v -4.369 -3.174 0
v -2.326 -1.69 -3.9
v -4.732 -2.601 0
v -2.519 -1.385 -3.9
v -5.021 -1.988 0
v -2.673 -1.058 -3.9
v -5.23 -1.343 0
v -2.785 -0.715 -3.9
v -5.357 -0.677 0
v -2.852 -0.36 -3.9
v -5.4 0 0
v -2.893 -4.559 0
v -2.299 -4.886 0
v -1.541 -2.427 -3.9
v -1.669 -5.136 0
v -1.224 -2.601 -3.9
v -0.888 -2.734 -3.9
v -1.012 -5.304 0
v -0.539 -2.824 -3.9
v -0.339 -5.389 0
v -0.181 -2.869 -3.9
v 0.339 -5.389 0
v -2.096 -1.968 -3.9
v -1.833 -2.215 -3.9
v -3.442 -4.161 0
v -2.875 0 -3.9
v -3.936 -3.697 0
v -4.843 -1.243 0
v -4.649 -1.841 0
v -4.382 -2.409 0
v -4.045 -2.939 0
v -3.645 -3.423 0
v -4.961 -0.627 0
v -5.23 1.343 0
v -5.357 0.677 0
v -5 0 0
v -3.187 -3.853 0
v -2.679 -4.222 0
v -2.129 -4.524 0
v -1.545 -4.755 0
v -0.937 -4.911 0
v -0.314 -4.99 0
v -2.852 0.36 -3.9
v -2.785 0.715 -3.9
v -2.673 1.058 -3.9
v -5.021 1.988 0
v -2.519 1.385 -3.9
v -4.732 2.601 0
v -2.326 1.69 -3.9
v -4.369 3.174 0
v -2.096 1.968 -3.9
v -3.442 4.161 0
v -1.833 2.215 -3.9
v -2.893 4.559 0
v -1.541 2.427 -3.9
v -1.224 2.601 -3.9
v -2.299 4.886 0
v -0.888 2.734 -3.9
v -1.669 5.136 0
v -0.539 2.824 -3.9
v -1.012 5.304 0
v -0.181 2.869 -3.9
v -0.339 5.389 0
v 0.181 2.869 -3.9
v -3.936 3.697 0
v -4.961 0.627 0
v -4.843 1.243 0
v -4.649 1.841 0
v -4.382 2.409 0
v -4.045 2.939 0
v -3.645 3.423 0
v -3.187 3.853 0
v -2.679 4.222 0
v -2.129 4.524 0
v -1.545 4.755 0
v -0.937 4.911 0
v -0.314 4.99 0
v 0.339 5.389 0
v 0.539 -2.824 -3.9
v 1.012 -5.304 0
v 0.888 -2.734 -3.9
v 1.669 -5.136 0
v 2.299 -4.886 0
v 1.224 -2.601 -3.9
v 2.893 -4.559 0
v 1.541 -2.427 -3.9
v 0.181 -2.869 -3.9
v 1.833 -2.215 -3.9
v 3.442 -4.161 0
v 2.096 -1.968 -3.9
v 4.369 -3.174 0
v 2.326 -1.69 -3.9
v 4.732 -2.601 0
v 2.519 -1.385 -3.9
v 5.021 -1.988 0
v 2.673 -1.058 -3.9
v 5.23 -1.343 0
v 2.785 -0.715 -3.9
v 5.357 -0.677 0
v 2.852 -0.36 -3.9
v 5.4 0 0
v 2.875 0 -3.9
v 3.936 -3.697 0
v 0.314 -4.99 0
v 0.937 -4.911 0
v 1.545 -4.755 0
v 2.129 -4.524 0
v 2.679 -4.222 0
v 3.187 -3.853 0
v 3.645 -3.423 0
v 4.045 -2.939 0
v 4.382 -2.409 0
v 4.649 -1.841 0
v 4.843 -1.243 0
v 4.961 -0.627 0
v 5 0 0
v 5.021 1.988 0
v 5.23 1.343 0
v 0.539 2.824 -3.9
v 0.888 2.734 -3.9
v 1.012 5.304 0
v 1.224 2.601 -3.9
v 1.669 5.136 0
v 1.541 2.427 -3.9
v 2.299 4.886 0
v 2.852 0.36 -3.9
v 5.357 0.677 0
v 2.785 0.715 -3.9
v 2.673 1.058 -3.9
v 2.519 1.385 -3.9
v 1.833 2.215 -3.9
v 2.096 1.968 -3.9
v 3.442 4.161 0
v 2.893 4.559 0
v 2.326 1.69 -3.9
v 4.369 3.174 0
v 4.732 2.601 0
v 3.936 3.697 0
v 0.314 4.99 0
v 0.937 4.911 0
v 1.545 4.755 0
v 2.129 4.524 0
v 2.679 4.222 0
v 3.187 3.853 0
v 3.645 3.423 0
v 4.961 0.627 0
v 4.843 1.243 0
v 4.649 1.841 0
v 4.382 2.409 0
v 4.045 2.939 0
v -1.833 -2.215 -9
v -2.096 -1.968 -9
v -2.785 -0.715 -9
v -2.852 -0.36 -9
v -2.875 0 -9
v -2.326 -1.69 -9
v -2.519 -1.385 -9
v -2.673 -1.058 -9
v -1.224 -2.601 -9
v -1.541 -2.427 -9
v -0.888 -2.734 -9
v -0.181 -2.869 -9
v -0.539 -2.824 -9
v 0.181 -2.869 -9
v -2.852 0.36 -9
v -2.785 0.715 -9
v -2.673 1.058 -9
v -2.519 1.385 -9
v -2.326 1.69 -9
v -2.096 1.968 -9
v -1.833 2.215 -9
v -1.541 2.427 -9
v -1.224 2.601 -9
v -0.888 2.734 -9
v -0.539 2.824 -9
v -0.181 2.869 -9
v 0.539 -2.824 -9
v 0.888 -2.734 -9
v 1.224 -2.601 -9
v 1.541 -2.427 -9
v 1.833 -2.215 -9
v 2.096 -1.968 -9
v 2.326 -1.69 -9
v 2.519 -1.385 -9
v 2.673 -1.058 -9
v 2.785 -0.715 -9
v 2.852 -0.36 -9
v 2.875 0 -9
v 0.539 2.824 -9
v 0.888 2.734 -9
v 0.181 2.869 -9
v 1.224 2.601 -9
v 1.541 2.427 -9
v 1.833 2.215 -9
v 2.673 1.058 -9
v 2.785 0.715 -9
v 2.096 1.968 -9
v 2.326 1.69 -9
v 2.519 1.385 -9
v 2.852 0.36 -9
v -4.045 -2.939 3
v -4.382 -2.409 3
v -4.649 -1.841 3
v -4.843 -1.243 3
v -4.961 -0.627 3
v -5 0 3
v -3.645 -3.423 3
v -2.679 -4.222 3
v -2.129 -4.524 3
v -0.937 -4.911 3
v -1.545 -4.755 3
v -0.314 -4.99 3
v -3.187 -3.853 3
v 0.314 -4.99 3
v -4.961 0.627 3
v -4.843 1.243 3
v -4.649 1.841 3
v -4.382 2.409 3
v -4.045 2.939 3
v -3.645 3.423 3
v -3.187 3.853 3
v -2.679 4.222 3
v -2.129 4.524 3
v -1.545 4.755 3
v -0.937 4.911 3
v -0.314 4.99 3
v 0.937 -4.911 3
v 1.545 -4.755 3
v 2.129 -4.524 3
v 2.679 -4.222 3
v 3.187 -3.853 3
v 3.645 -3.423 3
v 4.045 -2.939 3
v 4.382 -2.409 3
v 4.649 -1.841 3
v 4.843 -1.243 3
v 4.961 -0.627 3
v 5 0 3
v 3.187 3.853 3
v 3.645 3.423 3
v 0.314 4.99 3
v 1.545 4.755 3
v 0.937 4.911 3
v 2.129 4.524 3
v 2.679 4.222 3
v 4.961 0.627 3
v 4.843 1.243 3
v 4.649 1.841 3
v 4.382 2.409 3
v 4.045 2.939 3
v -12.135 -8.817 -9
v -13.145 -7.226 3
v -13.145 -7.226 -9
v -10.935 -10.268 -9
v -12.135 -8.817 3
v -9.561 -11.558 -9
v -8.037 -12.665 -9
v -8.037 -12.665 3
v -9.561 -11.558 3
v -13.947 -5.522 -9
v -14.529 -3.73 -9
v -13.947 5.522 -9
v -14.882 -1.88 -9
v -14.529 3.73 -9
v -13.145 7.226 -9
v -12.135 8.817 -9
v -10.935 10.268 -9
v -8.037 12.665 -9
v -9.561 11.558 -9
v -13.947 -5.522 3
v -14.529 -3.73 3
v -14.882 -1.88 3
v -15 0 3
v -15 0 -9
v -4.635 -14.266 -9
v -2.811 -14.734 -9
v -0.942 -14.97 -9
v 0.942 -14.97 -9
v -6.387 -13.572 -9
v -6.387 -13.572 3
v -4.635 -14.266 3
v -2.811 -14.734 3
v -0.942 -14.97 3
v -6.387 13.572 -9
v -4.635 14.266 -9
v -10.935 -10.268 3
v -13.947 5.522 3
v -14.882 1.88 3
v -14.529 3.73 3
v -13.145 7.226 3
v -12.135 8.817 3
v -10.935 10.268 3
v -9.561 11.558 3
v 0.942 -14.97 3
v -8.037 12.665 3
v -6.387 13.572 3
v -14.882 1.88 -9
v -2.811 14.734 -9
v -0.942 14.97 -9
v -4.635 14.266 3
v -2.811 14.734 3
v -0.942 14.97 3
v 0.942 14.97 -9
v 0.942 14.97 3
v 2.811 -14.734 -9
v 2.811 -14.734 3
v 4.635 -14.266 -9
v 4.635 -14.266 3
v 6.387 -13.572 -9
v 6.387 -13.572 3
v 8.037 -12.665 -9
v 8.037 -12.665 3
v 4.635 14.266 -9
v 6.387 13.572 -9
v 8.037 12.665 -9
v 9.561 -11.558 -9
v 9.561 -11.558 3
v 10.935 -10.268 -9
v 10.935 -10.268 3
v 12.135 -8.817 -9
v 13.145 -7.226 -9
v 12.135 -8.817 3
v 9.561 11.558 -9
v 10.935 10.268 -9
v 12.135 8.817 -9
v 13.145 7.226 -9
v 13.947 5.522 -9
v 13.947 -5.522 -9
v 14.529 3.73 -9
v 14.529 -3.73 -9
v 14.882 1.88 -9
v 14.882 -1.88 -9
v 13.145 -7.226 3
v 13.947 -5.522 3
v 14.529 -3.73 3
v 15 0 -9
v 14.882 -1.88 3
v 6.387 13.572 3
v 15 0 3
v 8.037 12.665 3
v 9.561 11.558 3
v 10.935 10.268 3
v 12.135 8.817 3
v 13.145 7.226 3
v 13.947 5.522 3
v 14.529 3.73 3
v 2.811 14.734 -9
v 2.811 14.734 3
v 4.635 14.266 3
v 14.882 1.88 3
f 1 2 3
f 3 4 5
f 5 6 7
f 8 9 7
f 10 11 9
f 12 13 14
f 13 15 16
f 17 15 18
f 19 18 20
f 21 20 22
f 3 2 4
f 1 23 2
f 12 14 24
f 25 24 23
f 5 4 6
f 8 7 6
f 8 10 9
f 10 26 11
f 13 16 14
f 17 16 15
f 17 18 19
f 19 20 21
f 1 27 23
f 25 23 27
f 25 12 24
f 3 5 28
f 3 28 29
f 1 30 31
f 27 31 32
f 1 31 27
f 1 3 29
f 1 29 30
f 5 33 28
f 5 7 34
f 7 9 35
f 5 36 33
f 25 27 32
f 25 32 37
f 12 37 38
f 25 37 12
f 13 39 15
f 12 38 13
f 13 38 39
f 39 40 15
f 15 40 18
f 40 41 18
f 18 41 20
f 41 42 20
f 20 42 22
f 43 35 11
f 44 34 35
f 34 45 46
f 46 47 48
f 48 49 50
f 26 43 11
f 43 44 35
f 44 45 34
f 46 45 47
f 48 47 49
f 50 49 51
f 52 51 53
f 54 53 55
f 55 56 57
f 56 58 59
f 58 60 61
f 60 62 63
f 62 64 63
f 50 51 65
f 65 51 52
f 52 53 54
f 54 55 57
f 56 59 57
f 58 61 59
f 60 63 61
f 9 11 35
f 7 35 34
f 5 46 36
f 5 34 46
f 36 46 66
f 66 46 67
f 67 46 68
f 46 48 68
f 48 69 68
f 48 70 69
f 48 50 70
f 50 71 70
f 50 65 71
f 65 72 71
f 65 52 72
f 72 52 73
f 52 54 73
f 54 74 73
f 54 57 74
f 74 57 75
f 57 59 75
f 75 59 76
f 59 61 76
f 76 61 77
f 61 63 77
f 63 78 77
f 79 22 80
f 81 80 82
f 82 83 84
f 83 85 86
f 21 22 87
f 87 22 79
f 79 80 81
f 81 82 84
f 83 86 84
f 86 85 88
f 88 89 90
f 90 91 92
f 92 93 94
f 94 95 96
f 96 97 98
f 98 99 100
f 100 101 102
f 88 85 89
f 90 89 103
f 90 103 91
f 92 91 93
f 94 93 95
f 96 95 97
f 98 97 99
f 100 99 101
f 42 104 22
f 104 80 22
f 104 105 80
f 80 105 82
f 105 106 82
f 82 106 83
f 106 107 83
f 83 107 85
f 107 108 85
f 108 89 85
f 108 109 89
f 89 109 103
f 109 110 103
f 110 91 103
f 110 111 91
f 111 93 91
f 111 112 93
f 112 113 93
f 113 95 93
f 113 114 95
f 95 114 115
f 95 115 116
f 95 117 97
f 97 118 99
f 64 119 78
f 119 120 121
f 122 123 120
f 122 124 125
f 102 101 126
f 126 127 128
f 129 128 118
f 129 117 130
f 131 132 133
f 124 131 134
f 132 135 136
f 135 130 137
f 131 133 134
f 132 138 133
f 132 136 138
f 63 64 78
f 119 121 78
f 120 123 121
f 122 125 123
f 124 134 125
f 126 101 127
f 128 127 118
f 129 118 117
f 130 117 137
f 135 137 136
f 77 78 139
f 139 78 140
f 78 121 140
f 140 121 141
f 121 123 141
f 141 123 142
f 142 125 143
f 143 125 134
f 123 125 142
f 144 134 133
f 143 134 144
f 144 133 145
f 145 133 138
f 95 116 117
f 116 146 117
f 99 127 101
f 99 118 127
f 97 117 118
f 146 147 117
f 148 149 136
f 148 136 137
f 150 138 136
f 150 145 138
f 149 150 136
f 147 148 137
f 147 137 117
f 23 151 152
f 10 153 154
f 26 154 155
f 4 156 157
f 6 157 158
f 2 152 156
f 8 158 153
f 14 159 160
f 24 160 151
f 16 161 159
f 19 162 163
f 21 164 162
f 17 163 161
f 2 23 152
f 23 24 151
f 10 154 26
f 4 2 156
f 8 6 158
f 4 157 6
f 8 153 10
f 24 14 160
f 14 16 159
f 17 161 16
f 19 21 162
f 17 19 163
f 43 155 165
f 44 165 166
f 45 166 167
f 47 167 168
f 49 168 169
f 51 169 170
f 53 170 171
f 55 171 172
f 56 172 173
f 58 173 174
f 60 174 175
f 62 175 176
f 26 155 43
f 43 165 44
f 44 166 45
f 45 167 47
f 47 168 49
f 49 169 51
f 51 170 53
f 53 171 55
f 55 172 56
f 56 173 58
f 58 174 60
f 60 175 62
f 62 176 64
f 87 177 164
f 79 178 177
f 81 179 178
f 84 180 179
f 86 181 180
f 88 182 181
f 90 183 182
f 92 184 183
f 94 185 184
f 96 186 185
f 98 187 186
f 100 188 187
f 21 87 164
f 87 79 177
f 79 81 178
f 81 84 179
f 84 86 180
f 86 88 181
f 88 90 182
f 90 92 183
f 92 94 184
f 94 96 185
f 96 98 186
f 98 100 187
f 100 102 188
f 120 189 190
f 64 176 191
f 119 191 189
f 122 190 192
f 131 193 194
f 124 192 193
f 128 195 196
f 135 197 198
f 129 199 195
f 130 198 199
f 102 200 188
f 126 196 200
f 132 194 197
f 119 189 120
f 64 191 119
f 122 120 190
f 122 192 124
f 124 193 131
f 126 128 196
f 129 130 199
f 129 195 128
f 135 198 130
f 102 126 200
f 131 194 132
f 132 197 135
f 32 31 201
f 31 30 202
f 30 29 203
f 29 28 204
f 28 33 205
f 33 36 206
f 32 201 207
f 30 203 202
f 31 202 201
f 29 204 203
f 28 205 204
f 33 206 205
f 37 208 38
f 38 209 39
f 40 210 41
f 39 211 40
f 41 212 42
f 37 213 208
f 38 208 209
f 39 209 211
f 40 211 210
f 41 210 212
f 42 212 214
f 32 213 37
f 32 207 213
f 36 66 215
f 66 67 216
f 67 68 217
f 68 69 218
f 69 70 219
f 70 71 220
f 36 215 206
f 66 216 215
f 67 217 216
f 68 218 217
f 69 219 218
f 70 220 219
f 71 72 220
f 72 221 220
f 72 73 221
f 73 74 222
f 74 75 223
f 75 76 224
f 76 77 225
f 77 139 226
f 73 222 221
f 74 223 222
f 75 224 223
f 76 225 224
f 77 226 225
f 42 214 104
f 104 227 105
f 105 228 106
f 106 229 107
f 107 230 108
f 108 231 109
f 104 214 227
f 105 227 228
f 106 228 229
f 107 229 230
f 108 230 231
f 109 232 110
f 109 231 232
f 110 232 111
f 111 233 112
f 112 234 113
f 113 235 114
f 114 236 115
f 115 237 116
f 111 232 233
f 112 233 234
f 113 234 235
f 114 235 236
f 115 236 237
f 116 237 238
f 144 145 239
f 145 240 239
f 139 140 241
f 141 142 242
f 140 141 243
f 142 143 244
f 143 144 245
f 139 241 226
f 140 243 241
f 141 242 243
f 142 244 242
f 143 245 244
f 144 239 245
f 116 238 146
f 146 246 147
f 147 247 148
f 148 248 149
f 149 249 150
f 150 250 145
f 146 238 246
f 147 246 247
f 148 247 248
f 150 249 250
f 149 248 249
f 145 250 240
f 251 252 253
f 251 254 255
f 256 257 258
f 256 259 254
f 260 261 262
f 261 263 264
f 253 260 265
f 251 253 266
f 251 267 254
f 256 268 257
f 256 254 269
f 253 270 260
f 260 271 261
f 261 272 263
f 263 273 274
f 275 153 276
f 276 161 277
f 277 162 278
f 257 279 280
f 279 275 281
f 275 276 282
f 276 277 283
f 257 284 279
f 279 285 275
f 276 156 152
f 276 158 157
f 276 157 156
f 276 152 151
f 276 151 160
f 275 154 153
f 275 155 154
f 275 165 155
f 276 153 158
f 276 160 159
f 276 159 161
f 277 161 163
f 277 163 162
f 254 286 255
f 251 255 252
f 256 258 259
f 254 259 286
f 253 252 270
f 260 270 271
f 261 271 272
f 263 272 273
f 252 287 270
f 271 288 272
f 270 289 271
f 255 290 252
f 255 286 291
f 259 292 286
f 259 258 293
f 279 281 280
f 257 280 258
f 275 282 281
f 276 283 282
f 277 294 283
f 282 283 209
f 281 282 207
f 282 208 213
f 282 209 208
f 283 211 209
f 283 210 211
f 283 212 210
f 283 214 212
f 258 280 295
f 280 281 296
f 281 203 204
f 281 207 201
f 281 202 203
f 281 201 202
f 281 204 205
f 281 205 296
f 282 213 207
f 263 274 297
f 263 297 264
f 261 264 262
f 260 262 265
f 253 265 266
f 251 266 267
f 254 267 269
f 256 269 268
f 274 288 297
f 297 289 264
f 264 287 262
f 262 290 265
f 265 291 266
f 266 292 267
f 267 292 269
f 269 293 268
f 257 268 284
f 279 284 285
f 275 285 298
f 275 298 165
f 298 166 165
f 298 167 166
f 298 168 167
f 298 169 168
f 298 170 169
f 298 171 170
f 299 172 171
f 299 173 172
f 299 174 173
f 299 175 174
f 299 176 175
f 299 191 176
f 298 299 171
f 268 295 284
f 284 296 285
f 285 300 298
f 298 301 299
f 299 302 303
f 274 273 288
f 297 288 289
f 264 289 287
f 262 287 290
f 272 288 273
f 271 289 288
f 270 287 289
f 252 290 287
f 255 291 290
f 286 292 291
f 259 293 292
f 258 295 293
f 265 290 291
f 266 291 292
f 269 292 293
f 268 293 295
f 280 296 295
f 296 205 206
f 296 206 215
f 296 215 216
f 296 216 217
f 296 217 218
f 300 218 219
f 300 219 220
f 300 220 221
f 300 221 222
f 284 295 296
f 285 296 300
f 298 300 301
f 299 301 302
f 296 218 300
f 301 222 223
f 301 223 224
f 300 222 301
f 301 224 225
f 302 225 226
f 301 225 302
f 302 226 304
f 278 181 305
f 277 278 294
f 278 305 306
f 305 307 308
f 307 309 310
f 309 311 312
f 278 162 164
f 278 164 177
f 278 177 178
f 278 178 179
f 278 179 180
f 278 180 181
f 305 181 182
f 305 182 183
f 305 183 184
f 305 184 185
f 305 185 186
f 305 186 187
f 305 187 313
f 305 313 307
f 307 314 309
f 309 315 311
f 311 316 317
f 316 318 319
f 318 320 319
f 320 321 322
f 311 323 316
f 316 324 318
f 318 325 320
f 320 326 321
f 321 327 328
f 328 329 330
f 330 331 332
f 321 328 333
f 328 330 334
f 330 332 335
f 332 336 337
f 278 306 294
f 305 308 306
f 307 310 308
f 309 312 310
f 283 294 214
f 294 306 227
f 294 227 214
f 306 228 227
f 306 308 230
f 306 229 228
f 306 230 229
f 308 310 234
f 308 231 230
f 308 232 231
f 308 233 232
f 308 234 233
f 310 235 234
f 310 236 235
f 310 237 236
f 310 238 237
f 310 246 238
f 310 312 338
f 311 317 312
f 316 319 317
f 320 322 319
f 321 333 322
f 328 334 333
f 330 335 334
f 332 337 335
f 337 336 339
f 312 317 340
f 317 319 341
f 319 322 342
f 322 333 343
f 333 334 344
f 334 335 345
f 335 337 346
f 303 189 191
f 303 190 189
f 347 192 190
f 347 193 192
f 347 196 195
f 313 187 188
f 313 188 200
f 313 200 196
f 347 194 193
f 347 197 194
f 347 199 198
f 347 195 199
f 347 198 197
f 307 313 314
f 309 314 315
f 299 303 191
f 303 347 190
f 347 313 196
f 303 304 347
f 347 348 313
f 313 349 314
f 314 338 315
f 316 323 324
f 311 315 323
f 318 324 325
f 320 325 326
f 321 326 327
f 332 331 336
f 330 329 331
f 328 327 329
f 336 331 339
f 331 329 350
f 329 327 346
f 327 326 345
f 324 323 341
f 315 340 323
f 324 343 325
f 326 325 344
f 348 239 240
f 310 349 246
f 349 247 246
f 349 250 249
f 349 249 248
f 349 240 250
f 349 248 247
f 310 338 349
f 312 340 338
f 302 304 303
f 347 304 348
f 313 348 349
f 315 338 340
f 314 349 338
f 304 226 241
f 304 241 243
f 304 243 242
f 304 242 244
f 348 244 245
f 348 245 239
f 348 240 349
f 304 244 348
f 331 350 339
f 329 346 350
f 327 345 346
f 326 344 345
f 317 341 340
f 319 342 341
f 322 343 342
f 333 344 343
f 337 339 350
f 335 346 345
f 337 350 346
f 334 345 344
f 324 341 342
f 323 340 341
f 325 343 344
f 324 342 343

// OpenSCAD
$fn = 50;

difference() {
	union() {
		translate(v = [0, 0, -9.0]) {
			cylinder(h = 12, r = 15.0);
		}
	}
	union() {
		translate(v = [0, 0, 0]) {
			rotate(a = [0, 0, 0]) {
				difference() {
					union() {
						translate(v = [0, 0, -12.0]) {
							cylinder(h = 12, r = 2.6);
						}
						translate(v = [0, 0, -3.9]) {
							cylinder(h = 3.9, r1 = 2.875, r2 = 5.4);
						}
						translate(v = [0, 0, -12.0]) {
							cylinder(h = 12, r = 2.875);
						}
						translate(v = [0, 0, -12.0]) {
							cylinder(h = 12, r = 2.6);
						}
					}
					union();
				}
			}
		}
		#cylinder(h = 3, r = 5.0);
	}
}
